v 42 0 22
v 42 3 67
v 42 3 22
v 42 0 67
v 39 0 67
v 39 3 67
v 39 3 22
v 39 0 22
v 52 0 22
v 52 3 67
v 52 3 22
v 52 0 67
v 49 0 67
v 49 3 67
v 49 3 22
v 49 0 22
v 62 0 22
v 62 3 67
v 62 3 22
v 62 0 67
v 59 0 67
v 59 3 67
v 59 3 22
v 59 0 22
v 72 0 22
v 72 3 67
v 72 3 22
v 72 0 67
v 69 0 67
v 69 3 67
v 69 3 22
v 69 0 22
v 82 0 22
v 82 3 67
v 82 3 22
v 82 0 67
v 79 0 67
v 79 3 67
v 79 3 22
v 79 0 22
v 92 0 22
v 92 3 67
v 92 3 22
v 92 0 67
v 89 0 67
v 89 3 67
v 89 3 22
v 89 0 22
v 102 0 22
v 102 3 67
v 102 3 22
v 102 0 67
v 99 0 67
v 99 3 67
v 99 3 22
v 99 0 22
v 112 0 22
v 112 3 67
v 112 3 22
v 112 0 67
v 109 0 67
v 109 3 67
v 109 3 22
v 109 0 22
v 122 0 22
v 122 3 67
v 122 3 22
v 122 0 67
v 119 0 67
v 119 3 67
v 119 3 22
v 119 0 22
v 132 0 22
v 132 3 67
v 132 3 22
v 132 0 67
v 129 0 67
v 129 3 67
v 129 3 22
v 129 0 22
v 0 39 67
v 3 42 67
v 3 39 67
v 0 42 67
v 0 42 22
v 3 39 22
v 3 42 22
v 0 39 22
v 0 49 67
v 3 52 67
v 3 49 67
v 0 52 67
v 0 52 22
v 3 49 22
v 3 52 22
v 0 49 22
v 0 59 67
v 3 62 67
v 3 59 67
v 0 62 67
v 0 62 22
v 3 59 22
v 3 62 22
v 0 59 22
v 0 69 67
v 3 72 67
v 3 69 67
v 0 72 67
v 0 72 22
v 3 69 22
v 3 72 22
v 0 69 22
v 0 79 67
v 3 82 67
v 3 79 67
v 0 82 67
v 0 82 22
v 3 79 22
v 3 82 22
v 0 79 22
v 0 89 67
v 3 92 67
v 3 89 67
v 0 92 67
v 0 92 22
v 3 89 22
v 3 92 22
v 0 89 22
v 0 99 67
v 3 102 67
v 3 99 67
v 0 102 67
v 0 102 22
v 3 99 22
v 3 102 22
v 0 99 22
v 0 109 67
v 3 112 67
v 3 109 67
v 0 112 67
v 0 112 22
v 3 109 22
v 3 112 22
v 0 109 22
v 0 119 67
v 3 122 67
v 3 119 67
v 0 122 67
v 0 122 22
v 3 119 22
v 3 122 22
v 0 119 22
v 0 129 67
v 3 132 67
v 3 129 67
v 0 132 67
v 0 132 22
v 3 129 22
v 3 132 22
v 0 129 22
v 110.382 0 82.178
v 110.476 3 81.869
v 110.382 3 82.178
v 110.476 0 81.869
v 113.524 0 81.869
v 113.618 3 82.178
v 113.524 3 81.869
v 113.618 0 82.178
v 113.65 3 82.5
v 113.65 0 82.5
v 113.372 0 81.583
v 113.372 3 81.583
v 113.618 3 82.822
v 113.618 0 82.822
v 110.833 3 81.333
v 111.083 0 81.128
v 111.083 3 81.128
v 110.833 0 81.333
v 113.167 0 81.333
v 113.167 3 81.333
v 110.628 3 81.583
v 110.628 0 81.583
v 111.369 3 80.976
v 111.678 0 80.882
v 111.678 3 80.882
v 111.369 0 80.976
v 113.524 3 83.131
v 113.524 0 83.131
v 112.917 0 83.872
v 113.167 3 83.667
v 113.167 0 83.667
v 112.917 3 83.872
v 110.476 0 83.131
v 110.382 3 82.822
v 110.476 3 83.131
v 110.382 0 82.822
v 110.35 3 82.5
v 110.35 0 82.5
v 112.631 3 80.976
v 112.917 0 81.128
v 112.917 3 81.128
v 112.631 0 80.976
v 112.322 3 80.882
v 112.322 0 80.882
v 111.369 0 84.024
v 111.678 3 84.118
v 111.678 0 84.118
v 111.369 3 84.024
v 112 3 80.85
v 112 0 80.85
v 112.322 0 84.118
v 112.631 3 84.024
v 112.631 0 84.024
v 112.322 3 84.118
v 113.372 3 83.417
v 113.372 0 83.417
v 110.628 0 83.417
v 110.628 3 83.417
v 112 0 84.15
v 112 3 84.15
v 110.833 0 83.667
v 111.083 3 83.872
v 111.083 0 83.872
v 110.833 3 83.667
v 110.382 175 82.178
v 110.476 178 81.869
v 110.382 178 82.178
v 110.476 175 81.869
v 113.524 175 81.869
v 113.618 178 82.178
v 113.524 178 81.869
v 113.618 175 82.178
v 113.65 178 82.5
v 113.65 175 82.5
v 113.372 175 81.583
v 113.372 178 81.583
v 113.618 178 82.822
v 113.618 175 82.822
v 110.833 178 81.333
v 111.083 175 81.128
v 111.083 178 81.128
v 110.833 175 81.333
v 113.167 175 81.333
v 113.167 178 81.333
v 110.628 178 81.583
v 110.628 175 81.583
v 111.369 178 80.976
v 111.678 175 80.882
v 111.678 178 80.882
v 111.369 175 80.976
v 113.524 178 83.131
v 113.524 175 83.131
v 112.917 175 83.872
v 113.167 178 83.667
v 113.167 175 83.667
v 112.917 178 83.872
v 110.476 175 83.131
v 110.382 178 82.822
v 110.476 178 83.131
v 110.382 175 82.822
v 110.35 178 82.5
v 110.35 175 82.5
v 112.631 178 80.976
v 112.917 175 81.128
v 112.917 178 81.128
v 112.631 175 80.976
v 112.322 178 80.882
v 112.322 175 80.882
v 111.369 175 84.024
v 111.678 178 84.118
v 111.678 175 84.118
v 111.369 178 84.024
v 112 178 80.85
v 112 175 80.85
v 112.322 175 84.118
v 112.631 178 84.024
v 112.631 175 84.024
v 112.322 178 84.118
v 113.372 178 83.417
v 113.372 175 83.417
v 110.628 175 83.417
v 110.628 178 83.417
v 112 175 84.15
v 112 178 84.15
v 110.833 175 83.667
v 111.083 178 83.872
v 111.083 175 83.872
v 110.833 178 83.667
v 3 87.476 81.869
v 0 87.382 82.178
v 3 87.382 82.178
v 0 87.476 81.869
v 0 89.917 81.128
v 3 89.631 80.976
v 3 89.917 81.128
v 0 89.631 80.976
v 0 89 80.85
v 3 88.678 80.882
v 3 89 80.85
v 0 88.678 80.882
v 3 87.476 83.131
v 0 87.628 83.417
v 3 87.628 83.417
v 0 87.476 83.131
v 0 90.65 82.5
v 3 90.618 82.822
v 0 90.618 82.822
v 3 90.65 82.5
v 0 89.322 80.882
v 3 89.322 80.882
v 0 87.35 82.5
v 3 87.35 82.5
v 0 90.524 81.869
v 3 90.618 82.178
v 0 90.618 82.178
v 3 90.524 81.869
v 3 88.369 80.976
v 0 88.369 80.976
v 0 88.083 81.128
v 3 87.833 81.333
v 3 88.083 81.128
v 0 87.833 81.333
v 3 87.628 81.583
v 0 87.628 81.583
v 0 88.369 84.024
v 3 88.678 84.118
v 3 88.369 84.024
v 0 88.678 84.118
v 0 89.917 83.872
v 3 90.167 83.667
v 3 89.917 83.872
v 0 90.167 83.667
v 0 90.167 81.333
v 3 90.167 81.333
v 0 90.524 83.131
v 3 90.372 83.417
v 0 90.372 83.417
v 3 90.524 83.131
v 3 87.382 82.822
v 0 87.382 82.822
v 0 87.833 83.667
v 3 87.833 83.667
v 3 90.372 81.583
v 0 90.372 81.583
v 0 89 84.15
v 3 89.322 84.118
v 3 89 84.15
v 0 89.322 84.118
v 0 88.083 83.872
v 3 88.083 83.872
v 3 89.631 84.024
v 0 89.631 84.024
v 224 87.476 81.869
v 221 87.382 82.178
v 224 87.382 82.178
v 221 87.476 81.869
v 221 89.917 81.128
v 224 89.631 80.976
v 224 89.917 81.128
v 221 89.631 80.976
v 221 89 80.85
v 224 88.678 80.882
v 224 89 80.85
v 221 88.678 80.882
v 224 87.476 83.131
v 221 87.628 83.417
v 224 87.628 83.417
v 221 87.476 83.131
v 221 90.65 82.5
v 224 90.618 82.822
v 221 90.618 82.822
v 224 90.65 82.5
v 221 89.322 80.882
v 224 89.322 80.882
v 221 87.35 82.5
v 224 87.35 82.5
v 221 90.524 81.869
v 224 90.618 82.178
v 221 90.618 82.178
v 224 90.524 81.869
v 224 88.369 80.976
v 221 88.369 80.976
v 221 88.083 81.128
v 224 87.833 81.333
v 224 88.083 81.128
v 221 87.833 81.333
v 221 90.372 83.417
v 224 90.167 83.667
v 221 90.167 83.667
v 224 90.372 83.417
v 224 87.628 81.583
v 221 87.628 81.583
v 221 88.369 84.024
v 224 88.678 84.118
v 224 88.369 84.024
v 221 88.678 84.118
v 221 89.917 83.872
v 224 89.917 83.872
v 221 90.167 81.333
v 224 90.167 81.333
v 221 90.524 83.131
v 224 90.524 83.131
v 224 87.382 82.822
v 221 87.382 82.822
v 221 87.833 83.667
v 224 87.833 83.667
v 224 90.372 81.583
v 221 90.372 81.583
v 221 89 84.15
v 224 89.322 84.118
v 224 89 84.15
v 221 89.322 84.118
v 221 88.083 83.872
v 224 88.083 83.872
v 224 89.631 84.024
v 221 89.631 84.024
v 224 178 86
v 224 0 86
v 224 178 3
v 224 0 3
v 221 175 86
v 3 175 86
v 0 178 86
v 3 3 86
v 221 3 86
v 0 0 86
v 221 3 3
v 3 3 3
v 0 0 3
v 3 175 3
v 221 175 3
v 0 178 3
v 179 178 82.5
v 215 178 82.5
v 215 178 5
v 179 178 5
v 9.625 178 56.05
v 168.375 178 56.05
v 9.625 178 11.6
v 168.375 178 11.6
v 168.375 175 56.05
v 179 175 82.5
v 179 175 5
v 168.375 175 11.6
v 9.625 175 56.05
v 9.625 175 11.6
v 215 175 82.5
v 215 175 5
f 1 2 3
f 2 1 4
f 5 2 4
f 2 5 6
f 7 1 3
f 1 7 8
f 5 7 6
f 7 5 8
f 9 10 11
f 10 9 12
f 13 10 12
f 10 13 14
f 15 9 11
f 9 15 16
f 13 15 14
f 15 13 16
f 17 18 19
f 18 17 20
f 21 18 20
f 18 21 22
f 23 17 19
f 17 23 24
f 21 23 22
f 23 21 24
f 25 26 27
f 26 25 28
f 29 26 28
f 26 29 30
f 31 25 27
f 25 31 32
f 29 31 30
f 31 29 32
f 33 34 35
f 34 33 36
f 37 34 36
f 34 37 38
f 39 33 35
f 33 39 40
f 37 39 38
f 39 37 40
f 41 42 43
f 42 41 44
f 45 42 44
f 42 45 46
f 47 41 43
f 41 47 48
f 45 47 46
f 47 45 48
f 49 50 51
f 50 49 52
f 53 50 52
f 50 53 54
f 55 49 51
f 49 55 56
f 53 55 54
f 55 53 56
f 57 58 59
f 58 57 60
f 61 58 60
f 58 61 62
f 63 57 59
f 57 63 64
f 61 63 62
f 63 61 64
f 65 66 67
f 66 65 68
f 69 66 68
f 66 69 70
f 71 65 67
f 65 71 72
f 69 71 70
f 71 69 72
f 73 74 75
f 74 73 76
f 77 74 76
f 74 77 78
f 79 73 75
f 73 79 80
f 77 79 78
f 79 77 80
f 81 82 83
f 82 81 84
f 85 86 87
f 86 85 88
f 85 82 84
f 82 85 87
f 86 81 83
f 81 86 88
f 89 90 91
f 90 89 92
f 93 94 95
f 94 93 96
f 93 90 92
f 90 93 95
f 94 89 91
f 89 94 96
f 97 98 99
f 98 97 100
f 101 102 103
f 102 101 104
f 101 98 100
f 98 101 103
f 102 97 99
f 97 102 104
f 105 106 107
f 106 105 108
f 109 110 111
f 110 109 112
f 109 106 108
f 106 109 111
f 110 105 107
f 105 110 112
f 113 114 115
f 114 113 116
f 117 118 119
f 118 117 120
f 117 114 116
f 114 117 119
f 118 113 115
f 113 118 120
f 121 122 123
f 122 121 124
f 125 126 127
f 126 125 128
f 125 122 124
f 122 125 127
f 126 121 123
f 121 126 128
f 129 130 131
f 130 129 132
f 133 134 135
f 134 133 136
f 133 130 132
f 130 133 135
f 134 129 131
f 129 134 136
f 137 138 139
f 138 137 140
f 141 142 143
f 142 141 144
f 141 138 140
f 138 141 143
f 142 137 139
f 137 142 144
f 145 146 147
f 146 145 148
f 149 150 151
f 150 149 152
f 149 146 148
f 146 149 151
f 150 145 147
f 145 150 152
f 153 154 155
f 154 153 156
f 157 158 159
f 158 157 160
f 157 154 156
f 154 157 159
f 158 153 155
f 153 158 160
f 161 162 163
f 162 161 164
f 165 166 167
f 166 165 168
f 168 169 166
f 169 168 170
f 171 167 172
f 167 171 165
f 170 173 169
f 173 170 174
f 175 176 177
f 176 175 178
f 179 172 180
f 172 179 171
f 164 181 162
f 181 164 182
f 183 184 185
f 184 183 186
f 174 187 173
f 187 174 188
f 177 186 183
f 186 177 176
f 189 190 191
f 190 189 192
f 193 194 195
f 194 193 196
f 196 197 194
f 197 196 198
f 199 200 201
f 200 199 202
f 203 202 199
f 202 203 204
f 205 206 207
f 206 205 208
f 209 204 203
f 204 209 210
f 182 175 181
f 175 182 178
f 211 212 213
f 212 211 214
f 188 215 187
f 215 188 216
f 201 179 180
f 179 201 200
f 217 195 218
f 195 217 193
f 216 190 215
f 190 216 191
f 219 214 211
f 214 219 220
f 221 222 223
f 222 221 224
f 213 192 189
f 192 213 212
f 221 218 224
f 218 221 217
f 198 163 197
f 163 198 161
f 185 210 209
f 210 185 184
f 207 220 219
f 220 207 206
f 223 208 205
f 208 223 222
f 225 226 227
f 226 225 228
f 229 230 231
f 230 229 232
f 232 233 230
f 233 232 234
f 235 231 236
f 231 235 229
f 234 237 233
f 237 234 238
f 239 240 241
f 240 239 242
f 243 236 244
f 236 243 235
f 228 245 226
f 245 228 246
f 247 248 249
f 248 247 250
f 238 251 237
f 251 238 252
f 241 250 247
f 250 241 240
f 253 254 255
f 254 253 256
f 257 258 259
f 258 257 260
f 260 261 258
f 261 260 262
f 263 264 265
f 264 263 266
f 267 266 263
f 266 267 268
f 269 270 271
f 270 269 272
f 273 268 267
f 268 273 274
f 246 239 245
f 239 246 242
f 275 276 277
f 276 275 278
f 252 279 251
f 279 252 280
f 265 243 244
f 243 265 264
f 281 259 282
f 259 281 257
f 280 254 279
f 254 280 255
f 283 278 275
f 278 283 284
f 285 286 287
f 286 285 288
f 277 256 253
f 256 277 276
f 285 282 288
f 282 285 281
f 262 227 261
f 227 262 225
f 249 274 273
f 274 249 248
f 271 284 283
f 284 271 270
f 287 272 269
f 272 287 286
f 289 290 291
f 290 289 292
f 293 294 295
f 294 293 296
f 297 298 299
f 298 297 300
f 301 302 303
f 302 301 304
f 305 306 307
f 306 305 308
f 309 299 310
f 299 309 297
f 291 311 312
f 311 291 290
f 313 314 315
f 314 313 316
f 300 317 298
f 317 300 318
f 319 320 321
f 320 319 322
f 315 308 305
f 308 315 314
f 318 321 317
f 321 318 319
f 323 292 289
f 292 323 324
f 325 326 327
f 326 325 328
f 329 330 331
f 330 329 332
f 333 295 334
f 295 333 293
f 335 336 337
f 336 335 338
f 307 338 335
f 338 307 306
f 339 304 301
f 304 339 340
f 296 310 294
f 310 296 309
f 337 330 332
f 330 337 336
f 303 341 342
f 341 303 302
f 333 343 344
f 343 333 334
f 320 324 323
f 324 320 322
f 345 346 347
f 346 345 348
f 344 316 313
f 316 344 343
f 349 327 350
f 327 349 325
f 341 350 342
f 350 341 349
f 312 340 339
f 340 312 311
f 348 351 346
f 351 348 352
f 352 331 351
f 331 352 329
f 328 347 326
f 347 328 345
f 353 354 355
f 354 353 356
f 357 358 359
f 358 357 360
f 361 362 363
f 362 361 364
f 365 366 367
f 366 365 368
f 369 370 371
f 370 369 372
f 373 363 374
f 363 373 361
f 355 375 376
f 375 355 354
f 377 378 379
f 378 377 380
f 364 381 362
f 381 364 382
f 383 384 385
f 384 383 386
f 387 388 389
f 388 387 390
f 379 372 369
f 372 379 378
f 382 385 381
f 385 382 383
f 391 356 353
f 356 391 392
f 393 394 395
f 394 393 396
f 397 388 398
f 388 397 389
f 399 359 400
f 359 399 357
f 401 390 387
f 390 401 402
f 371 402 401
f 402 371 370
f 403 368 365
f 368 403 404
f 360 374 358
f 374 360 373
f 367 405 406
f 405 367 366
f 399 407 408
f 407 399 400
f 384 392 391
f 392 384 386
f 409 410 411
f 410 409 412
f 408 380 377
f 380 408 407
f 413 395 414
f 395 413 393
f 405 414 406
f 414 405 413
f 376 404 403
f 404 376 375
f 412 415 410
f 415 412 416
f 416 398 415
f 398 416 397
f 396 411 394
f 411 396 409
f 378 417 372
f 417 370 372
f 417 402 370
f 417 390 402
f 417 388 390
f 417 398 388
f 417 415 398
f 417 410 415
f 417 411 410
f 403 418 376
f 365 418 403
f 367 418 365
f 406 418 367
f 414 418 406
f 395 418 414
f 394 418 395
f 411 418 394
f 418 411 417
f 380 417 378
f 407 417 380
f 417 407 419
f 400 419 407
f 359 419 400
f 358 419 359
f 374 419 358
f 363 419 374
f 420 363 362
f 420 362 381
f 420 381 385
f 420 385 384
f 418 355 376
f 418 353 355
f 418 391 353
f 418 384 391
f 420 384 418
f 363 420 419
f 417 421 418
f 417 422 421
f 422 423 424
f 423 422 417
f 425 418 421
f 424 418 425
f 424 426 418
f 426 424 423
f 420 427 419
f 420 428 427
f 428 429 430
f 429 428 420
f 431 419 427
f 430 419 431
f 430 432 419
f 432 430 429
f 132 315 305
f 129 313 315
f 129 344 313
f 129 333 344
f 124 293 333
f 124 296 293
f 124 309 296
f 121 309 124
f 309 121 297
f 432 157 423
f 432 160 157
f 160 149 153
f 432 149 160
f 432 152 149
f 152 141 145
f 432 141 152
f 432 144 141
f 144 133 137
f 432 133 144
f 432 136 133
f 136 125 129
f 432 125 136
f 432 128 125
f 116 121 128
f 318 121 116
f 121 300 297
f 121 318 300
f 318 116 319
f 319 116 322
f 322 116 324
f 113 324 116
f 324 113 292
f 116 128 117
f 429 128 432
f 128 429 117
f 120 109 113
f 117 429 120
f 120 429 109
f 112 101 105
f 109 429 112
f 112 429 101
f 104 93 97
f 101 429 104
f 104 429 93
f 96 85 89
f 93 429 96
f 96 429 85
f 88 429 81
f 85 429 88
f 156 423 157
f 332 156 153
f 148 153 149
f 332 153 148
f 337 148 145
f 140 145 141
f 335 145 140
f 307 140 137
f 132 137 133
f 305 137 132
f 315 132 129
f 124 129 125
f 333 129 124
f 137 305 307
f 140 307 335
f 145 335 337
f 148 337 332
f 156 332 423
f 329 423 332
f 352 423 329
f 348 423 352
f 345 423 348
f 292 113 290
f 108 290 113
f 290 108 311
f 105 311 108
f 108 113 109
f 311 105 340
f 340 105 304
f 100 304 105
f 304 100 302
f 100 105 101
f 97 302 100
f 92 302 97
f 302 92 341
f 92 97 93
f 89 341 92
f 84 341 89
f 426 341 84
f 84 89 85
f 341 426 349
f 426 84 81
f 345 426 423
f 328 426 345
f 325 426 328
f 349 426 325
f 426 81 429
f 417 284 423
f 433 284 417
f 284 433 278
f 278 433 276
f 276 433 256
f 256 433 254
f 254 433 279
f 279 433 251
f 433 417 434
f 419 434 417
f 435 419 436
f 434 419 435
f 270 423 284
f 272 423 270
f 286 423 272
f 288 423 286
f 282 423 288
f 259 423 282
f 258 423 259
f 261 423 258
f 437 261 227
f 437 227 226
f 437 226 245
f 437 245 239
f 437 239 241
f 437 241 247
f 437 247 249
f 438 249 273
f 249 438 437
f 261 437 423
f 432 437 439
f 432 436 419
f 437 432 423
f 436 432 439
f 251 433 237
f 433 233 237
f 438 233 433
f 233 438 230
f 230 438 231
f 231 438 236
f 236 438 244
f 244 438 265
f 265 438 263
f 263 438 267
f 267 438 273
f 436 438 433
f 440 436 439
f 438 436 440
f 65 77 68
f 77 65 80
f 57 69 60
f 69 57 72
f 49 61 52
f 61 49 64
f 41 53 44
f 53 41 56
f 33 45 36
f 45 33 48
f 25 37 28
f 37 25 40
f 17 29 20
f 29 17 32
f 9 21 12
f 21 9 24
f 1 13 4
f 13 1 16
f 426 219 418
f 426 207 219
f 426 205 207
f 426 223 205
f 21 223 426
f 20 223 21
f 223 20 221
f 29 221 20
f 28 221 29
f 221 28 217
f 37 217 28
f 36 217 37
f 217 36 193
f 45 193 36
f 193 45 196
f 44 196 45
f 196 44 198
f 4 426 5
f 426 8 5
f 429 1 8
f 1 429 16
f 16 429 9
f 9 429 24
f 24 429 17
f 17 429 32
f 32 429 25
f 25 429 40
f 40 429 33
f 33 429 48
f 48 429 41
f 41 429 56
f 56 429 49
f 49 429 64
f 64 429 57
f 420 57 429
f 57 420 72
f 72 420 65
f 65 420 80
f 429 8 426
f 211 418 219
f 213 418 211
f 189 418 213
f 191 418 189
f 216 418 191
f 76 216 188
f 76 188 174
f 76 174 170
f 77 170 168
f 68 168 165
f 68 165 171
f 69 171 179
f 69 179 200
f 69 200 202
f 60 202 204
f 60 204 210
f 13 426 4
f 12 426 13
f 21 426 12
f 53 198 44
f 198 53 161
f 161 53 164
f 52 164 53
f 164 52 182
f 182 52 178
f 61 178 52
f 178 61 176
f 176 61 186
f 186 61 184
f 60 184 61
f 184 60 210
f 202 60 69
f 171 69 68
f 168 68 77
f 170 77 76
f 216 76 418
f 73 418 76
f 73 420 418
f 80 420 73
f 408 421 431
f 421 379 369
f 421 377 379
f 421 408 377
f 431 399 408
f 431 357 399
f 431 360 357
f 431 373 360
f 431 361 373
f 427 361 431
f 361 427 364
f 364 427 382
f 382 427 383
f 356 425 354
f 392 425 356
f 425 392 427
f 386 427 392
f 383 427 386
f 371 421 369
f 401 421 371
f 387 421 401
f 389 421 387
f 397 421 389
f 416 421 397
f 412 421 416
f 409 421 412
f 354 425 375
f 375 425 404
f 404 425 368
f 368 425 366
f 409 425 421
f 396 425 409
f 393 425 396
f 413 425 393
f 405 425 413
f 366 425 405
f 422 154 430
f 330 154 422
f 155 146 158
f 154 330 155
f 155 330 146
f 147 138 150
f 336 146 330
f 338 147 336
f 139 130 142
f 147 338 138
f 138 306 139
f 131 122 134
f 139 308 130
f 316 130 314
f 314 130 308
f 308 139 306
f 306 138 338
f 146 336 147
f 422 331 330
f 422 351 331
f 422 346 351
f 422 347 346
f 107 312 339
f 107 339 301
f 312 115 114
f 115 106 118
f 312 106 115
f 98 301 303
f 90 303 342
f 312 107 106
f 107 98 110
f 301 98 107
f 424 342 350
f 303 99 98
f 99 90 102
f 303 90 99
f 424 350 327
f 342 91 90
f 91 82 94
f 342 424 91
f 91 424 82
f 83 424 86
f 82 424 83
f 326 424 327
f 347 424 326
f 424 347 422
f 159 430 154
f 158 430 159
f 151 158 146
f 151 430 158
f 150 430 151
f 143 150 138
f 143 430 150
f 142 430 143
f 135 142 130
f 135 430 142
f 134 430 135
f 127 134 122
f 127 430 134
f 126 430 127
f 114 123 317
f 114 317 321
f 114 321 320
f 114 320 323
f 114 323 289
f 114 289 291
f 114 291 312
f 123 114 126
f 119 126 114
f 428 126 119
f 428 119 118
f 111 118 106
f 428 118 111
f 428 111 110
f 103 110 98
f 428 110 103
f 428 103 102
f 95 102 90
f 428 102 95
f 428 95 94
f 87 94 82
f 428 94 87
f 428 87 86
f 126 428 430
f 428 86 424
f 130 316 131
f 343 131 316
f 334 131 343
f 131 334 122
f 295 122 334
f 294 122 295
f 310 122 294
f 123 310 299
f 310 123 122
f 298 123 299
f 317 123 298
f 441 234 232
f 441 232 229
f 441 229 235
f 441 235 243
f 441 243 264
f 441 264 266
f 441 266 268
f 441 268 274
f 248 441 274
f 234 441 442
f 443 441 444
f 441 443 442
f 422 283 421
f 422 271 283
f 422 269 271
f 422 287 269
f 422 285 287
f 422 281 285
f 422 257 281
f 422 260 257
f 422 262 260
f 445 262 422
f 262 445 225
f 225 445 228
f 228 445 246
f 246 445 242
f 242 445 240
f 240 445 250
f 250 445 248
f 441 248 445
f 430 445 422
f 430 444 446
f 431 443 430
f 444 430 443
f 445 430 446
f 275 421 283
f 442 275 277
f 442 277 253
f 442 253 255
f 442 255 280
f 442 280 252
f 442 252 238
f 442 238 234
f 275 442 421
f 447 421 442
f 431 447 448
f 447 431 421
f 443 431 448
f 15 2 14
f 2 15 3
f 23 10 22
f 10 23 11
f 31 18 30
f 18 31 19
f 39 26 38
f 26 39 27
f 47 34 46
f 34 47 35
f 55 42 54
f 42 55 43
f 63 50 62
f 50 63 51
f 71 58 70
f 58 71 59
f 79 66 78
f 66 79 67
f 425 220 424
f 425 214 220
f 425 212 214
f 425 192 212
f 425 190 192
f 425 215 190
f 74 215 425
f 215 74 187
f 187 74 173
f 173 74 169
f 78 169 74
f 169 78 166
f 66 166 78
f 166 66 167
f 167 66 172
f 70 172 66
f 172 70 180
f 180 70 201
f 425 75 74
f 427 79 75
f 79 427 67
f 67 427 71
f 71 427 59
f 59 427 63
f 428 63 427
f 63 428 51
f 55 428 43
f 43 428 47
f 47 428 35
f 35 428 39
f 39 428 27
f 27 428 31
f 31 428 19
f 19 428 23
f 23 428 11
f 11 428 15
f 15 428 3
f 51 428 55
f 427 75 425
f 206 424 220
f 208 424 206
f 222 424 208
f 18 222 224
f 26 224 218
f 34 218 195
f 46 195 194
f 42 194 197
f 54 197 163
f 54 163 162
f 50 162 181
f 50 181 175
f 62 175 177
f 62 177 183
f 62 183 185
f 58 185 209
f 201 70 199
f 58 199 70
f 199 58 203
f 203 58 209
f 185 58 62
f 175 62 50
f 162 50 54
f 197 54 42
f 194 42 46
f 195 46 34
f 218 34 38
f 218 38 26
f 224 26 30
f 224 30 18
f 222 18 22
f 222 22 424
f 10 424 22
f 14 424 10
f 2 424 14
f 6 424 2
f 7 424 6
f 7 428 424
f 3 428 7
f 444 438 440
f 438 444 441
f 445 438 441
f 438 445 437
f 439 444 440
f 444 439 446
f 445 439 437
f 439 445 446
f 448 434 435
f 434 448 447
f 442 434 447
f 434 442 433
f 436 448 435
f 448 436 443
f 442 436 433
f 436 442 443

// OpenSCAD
// The case shell with openings and vents from the Mini-ITX case example, as the eval's reference.
// Render: openscad -o model.stl model.scad
include <../../../../../examples/mini-itx-case/case.scad>
part = "shell";
